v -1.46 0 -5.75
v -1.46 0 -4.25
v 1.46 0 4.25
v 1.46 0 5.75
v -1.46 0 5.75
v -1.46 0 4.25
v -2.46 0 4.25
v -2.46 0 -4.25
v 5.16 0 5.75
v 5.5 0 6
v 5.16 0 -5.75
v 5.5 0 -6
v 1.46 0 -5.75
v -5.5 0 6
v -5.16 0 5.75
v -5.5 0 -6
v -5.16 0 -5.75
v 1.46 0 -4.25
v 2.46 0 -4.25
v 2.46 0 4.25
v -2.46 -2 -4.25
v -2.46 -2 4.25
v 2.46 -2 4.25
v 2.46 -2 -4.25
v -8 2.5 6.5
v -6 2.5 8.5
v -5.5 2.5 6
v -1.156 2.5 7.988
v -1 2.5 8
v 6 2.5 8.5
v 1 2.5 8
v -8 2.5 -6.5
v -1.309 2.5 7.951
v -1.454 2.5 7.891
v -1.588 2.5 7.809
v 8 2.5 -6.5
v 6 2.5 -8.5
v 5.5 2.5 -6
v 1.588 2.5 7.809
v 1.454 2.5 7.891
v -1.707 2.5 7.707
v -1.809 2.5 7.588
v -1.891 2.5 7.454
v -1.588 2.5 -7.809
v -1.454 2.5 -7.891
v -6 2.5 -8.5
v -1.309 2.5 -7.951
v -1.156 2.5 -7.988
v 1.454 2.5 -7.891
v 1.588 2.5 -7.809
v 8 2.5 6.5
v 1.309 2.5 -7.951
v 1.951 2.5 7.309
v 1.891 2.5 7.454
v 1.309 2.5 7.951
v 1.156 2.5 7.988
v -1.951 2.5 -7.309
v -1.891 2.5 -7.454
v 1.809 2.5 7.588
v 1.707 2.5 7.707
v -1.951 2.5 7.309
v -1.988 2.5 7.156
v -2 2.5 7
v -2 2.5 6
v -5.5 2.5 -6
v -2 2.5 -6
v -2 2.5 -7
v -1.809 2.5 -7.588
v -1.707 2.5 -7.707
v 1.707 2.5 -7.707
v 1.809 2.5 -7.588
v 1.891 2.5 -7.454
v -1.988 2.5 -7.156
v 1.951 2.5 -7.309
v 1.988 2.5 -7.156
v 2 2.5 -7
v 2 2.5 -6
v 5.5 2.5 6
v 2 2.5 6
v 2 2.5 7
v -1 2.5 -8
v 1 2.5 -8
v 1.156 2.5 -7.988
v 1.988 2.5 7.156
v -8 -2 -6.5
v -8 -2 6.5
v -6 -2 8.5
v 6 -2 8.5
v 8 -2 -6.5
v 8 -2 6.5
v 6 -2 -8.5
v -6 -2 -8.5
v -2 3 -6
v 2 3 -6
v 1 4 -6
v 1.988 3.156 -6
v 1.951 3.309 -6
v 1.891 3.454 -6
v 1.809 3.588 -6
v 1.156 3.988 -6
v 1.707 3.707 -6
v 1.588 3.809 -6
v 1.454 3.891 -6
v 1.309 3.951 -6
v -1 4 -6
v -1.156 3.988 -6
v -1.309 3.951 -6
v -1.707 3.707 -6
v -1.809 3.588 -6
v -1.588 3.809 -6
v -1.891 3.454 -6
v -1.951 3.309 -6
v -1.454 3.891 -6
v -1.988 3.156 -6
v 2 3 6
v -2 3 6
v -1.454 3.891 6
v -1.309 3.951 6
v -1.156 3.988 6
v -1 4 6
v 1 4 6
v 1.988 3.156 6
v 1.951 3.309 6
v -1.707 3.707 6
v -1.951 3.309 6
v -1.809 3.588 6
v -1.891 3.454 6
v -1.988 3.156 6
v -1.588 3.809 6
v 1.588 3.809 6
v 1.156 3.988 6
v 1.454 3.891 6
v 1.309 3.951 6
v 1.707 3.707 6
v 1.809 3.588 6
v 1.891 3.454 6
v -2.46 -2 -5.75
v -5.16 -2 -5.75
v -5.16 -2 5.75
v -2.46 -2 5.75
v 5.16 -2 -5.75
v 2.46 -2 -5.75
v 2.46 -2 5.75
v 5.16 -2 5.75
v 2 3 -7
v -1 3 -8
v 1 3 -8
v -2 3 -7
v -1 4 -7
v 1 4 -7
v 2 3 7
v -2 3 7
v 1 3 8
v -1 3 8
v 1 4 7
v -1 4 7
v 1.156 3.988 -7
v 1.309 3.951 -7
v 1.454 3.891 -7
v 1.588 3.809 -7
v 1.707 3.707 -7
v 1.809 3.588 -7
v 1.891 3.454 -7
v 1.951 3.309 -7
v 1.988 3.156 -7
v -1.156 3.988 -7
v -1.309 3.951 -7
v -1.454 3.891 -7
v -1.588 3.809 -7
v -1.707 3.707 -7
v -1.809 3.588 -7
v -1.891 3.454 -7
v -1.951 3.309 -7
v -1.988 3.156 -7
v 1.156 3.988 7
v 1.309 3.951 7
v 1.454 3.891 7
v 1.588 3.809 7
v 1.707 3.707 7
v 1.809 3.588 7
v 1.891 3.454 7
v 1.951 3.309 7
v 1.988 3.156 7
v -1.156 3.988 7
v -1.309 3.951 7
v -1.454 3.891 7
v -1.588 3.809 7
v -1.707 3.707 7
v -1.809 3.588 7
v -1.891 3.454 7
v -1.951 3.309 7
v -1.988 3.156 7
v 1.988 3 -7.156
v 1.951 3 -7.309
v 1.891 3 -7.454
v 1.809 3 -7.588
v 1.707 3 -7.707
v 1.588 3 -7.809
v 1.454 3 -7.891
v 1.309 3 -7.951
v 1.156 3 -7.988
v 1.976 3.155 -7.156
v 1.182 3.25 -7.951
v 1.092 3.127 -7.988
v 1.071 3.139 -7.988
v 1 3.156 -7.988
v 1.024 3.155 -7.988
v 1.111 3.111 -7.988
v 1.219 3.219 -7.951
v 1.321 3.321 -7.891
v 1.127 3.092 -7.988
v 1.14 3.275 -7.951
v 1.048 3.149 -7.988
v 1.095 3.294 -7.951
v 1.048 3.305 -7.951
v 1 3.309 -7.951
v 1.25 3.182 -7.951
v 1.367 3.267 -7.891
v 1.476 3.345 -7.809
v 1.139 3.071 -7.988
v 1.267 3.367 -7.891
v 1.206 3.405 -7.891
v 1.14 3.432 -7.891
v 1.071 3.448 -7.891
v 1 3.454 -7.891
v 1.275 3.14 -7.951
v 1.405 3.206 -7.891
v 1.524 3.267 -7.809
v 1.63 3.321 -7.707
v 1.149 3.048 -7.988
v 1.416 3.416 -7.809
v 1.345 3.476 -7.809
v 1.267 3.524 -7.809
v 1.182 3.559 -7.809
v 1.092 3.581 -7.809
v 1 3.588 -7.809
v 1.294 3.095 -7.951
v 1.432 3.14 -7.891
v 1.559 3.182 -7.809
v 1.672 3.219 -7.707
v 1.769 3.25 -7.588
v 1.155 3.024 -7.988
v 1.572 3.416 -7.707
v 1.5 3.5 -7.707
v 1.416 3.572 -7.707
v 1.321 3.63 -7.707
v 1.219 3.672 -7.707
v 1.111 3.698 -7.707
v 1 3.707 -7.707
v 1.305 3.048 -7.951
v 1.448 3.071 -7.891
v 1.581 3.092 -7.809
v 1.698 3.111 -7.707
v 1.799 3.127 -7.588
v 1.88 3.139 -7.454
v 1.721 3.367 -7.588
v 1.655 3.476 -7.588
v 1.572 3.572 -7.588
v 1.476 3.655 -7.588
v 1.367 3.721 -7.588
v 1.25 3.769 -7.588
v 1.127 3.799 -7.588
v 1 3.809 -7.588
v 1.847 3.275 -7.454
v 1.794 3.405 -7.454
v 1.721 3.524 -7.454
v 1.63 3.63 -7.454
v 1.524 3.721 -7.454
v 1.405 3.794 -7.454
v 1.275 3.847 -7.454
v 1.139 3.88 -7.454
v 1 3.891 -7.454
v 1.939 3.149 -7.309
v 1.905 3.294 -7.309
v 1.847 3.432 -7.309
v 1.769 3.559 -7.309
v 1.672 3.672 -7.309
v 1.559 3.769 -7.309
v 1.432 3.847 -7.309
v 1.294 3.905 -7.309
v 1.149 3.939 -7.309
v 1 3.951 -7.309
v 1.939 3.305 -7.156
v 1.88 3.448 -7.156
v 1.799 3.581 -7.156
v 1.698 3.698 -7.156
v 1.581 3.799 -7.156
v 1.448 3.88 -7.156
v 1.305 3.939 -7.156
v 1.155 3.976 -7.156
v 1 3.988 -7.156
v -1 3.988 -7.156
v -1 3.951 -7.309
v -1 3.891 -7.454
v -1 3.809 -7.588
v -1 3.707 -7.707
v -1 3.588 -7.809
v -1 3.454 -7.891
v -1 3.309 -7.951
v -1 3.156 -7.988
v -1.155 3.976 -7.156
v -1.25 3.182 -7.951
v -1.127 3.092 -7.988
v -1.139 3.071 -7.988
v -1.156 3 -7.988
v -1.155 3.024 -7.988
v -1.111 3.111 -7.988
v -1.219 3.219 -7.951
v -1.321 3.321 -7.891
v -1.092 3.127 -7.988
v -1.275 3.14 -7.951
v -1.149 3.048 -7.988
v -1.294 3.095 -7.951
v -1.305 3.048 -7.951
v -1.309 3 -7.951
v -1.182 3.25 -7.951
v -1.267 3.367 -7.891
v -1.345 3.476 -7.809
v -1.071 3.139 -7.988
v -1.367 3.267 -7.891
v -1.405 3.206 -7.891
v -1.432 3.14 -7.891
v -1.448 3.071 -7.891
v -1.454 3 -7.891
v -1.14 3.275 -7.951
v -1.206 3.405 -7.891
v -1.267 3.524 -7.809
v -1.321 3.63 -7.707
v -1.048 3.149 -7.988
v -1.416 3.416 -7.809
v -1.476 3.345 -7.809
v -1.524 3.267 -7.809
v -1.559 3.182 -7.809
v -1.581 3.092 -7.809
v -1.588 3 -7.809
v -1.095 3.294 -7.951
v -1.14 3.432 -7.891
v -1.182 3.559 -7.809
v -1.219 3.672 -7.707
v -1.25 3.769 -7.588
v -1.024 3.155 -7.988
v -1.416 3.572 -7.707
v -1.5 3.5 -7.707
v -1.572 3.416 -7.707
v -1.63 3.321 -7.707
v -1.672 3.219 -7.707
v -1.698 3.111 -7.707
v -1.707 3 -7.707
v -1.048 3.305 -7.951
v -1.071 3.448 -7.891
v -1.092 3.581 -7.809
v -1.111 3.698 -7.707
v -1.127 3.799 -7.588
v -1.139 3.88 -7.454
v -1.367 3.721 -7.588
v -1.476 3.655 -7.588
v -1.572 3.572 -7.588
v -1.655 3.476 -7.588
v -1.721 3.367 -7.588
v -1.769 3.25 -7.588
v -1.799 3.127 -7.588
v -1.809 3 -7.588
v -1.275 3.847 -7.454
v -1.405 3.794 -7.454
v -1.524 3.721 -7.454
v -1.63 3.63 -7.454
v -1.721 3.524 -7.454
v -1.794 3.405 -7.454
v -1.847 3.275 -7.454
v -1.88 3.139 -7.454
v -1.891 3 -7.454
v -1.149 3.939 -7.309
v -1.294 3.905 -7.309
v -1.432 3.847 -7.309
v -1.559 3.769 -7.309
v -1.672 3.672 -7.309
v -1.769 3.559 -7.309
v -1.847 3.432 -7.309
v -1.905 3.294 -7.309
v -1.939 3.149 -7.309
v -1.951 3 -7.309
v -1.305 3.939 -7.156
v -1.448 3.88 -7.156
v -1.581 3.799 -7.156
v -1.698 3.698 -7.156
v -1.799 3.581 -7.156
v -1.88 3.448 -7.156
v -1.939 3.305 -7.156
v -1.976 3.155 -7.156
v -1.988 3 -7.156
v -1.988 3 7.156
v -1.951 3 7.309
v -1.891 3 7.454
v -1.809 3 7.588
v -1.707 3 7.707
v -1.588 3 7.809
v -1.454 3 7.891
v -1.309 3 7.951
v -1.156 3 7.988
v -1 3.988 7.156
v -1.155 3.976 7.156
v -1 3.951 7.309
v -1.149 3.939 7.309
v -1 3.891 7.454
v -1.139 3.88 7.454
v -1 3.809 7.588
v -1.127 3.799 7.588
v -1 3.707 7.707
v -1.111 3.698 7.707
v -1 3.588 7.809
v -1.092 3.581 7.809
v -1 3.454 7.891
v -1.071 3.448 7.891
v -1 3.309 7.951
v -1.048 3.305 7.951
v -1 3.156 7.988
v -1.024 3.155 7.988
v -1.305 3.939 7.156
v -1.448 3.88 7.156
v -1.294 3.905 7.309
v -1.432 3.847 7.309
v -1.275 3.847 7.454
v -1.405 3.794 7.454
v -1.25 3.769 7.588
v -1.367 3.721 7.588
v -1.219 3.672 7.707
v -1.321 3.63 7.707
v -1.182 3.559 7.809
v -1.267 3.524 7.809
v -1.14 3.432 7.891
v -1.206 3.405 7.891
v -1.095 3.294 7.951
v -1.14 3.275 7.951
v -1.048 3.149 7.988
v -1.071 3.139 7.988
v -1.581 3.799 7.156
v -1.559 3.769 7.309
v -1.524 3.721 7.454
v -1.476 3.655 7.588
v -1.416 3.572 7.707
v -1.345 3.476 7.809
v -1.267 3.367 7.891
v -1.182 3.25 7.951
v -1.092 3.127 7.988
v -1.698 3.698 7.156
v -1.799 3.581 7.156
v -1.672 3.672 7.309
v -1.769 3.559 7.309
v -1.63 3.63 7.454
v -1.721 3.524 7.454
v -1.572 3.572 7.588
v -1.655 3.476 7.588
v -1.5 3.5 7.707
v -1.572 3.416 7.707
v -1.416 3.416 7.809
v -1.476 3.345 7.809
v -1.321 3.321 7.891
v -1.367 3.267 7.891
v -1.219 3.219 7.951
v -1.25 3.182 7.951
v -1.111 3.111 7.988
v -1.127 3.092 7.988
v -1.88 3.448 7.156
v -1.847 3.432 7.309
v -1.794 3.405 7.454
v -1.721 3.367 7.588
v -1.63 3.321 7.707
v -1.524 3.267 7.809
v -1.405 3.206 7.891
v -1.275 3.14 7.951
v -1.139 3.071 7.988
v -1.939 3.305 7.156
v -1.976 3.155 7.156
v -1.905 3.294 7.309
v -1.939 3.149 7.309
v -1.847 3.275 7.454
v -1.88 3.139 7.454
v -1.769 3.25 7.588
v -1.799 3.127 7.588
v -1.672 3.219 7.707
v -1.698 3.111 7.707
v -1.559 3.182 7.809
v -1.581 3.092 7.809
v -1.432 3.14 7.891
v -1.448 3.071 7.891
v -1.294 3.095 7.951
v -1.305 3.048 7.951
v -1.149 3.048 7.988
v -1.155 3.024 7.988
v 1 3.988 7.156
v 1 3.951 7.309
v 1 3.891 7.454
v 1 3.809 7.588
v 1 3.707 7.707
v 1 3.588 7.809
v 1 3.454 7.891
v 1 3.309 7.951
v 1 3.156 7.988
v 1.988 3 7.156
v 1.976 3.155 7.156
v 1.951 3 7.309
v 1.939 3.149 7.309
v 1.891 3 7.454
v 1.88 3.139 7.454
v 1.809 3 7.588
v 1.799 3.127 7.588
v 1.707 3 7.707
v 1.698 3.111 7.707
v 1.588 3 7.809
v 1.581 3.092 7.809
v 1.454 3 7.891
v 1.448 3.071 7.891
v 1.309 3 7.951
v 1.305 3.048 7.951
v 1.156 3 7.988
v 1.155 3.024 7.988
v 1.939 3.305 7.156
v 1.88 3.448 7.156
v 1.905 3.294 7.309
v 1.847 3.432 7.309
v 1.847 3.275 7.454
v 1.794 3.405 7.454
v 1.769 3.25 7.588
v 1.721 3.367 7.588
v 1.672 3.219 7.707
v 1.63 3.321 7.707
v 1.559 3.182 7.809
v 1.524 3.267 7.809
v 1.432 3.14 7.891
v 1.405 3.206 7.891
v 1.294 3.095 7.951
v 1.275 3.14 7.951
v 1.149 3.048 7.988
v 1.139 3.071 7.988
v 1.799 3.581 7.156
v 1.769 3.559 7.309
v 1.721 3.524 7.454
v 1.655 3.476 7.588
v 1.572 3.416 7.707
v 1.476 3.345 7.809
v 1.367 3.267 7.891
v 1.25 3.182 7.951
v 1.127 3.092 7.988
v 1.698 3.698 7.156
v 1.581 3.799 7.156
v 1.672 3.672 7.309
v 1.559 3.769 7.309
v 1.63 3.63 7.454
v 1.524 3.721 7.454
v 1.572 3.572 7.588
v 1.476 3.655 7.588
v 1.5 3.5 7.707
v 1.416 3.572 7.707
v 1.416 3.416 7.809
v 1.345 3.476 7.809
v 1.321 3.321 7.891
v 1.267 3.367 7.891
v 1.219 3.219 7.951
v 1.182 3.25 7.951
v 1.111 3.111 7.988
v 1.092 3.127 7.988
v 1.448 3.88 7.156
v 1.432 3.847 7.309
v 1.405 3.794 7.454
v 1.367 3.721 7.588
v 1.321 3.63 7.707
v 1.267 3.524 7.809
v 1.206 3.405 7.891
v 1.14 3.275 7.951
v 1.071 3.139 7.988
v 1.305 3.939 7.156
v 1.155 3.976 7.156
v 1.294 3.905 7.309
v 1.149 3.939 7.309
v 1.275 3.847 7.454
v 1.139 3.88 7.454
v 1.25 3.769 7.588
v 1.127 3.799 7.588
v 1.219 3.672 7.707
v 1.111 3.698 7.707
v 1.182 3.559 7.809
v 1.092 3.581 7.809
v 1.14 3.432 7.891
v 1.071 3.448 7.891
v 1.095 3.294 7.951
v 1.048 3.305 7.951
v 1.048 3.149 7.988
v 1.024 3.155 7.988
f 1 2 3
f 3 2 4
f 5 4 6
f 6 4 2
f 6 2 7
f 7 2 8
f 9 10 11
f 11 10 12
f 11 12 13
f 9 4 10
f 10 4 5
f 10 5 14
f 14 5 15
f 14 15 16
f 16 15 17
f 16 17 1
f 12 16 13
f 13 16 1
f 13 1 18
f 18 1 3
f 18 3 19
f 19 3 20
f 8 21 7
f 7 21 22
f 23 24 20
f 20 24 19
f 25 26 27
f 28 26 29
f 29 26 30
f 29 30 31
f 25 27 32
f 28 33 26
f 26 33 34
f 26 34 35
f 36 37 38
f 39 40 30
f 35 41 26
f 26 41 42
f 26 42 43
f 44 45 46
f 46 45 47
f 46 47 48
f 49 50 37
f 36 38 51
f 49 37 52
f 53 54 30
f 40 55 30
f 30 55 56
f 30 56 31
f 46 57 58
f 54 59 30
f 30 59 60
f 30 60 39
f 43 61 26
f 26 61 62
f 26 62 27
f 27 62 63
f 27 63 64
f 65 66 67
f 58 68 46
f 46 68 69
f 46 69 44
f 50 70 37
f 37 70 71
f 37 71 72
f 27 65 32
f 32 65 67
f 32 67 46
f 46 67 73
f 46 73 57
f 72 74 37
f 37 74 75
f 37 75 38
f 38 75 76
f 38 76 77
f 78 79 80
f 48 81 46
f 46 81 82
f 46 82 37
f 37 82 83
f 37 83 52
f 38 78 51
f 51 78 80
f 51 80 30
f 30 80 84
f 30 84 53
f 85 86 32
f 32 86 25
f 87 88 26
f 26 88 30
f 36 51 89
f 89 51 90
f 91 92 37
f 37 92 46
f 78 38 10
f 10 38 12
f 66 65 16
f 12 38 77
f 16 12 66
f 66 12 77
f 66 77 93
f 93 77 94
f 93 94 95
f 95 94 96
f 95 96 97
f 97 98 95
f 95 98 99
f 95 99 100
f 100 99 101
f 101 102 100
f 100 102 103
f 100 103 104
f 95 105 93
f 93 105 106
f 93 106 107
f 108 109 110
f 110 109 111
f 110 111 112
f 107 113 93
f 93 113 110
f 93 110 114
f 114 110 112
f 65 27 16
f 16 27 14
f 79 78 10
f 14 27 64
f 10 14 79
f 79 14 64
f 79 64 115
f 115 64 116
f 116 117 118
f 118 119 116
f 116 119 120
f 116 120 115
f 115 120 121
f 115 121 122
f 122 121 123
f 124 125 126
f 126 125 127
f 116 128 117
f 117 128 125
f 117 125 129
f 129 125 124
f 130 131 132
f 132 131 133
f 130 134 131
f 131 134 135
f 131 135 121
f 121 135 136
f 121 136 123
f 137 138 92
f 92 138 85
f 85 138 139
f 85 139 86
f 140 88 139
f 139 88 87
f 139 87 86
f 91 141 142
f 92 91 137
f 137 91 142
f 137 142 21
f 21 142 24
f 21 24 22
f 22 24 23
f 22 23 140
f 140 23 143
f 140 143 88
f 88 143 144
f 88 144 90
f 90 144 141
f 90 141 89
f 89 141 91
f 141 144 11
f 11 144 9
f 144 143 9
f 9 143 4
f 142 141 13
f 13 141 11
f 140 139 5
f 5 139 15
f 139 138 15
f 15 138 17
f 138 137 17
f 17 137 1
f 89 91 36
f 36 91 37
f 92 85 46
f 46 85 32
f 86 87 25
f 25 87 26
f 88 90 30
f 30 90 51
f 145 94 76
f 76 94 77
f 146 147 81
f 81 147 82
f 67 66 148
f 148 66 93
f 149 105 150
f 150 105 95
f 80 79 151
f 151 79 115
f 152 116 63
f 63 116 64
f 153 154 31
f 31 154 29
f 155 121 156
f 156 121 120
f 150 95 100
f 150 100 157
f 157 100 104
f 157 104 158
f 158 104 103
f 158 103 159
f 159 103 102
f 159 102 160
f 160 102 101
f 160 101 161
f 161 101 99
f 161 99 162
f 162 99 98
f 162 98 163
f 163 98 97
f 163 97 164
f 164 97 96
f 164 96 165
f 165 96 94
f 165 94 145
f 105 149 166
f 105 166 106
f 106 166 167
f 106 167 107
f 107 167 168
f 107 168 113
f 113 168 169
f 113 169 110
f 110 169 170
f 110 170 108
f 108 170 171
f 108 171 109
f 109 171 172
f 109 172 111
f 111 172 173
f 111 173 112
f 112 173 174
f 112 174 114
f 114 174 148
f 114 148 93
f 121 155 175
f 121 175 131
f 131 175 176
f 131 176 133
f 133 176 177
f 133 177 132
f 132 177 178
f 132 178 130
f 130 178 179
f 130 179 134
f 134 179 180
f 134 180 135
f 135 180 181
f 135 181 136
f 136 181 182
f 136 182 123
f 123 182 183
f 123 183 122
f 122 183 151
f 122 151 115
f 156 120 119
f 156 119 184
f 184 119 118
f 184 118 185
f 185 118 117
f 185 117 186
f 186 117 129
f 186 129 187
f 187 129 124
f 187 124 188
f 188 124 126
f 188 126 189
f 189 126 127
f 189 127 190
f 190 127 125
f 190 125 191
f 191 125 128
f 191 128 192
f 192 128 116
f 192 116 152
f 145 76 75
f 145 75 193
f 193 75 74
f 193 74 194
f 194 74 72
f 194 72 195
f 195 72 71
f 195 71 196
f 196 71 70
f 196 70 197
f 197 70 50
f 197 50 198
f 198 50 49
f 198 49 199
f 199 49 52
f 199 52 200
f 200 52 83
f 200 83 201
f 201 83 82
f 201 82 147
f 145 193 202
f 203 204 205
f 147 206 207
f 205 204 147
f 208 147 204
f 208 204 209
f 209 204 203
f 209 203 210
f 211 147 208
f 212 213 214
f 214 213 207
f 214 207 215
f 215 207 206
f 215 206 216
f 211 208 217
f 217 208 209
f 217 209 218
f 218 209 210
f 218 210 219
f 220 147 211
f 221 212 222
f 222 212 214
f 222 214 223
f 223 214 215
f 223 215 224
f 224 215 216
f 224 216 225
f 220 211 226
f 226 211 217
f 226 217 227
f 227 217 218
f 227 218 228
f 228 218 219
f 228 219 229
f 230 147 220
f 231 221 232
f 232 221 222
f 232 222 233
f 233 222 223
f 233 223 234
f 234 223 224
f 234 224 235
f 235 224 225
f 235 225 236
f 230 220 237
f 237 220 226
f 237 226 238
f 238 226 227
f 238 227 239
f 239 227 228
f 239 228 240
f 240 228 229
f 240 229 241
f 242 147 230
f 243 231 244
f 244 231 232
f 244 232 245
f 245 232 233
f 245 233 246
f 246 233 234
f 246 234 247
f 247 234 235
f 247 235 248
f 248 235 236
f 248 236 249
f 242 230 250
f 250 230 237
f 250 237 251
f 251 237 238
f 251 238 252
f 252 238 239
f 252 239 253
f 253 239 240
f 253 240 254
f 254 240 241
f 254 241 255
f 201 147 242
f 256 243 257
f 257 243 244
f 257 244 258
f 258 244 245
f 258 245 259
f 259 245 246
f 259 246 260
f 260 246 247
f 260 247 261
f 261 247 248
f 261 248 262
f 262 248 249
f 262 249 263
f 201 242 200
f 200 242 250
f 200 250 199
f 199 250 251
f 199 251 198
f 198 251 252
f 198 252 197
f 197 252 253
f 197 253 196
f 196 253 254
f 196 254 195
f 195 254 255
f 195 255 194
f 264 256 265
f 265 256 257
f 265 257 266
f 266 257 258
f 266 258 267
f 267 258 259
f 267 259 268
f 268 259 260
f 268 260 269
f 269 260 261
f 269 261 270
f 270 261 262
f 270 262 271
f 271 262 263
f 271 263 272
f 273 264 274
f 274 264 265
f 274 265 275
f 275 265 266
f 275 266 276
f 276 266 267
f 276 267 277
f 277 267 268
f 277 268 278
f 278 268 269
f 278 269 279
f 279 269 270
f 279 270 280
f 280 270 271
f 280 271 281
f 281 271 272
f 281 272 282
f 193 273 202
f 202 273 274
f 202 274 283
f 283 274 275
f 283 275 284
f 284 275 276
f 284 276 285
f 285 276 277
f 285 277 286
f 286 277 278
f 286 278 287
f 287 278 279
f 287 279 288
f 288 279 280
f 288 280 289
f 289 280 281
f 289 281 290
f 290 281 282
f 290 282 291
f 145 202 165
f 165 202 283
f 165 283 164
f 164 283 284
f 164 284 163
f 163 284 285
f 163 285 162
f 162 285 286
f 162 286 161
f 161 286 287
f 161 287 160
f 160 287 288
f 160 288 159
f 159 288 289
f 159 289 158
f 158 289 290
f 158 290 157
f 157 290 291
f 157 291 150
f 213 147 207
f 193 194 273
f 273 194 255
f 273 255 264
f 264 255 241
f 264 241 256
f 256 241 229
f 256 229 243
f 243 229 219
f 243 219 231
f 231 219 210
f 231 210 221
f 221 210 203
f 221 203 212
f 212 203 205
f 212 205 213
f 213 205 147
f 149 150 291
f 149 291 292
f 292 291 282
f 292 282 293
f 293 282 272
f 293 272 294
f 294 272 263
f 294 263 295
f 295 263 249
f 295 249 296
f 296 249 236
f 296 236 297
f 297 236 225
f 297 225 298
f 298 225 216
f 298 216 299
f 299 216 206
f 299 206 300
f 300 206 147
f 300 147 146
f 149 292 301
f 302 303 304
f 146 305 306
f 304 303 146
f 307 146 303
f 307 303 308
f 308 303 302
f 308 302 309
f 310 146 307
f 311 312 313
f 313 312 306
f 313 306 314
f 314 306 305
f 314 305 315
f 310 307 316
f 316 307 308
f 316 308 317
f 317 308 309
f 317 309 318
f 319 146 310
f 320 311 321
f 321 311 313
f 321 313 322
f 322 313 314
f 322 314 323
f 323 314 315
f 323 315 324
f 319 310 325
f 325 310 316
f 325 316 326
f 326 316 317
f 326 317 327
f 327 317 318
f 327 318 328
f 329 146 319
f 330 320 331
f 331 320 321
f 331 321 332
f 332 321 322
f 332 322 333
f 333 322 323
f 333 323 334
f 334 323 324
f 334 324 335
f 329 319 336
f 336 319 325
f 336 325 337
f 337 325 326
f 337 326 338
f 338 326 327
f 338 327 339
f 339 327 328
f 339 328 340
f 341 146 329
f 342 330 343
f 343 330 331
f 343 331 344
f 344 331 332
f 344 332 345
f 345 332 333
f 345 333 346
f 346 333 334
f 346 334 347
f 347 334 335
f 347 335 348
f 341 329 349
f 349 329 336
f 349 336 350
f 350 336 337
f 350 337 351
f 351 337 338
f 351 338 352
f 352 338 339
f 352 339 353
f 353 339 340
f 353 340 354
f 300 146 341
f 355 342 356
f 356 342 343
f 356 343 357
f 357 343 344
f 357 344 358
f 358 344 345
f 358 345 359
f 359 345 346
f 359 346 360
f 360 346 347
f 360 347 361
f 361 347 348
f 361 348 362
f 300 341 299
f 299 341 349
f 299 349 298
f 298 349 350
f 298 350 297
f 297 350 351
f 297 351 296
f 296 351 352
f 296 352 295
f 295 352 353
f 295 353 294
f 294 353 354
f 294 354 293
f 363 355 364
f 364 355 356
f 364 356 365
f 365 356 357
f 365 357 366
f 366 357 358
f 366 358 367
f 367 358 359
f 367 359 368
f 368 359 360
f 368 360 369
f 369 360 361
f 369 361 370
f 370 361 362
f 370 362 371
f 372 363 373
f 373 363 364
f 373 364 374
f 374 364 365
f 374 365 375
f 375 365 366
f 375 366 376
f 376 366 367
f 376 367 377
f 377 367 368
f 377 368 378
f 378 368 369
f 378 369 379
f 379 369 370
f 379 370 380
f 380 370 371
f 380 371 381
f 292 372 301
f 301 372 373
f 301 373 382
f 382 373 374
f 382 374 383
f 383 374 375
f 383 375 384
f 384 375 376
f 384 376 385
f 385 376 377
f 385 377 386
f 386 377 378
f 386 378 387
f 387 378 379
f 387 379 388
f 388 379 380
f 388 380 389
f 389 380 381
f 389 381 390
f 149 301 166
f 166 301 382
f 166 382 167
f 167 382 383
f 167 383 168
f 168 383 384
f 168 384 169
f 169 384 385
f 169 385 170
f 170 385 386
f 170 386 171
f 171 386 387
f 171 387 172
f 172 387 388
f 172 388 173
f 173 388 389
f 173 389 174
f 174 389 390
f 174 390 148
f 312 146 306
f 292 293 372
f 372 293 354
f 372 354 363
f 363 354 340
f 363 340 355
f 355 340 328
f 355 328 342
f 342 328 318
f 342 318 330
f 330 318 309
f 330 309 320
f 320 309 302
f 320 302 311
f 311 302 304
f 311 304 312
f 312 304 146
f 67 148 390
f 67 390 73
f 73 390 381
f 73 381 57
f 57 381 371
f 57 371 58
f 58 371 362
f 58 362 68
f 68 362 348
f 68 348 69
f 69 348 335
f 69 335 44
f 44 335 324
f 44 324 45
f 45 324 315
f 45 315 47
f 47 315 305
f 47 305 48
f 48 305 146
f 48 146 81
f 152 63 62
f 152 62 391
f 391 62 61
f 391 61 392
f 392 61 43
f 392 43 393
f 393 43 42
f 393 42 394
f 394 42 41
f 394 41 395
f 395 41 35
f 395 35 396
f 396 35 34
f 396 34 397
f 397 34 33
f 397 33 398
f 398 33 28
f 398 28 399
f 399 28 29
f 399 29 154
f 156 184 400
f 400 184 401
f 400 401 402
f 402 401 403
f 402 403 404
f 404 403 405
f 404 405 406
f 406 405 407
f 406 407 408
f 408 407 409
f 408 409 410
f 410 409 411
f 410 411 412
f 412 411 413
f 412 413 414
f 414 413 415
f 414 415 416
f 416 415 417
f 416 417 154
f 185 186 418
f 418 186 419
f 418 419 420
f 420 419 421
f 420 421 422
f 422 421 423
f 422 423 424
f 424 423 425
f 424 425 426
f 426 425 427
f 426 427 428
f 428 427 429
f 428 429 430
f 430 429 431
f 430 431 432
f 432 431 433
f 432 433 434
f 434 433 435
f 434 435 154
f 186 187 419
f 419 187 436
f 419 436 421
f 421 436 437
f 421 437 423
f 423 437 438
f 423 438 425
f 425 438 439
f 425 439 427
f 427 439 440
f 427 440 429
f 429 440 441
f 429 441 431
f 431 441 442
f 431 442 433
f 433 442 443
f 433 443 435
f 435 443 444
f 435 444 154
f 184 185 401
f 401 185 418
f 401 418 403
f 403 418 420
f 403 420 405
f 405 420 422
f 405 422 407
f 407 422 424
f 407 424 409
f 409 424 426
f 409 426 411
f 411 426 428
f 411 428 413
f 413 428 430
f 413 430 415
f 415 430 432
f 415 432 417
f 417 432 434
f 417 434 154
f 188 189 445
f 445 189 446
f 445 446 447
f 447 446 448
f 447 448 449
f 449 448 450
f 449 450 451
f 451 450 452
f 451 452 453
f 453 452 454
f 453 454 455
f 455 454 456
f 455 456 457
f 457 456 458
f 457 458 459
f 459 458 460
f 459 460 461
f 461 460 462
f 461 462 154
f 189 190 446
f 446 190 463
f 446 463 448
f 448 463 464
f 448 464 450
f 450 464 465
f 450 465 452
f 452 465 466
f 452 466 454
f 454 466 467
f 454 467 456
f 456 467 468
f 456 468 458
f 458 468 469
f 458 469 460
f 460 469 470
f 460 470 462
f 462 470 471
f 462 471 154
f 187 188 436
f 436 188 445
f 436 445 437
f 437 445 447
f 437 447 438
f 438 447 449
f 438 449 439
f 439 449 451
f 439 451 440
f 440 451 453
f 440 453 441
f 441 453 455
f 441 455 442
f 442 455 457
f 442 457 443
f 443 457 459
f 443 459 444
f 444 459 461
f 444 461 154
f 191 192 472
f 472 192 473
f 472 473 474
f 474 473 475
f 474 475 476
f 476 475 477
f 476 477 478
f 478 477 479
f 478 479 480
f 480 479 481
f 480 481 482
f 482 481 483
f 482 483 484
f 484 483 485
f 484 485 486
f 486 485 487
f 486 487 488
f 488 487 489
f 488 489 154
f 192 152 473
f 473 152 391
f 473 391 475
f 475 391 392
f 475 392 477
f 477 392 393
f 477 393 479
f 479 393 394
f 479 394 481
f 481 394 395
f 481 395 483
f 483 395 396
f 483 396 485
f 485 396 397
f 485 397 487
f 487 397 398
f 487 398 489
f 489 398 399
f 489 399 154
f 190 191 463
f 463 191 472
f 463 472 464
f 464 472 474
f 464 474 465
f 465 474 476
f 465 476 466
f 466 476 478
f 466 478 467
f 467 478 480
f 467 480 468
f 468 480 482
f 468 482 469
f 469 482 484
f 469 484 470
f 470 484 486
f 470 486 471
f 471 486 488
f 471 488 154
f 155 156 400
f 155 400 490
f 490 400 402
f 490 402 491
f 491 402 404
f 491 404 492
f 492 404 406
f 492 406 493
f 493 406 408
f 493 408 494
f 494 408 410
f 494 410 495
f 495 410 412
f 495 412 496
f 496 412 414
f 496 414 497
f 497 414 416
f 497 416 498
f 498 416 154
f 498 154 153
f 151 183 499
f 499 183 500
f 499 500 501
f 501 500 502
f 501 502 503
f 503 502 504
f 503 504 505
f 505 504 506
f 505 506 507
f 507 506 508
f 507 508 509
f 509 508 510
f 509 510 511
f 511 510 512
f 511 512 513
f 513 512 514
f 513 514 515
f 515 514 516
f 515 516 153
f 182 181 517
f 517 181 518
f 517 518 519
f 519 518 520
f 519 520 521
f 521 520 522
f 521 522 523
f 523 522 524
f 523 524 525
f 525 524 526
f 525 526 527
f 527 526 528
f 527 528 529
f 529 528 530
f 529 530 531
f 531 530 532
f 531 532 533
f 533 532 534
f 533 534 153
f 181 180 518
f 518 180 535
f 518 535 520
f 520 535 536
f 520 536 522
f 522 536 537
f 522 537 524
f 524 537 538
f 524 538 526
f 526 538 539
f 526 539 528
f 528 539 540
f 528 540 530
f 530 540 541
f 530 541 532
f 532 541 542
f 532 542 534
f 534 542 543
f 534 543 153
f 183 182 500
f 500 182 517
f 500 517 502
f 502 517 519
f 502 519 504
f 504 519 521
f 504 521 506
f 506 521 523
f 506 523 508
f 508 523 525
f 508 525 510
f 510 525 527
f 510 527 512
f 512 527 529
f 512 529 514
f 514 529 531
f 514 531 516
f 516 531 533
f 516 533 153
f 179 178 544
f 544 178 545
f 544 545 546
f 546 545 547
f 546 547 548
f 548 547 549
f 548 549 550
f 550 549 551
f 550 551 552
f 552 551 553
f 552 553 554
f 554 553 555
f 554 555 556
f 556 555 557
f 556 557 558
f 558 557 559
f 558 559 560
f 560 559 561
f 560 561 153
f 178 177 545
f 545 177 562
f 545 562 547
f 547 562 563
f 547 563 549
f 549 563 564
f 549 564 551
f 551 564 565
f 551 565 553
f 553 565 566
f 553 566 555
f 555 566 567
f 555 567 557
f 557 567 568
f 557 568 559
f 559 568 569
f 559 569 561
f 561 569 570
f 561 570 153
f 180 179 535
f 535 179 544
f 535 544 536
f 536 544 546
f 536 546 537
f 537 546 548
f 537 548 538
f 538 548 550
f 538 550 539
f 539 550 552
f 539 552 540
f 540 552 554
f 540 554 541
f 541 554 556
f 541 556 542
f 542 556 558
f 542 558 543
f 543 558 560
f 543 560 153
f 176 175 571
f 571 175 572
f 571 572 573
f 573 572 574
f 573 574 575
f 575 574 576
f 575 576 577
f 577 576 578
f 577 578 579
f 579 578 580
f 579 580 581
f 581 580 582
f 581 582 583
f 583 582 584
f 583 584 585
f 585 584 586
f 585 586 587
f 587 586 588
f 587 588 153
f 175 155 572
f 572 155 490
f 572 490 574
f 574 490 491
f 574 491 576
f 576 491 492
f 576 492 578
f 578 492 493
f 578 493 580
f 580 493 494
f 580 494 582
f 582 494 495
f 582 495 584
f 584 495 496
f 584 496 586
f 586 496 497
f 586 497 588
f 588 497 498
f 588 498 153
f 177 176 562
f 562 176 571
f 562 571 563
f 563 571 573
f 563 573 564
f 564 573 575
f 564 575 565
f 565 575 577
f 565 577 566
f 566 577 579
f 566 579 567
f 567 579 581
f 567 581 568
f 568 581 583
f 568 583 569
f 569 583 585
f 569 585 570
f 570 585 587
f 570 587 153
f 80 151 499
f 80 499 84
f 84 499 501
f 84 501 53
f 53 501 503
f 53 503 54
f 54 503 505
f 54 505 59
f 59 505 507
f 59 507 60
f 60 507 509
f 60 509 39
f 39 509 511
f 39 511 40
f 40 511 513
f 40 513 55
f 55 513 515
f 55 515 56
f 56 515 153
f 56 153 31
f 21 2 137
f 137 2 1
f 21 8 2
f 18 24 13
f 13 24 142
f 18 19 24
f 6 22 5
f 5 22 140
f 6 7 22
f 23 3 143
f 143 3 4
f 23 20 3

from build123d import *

# Parameters (mm, degrees)
SKETCH1_W           = 16
SKETCH1_H           = 17
SKETCH1_W_2         = 11
SKETCH1_H_2         = 12
BOSS_EXTRUDE1_DEPTH = 2.5
SKETCH2_W           = 16
SKETCH2_H           = 17
BOSS_EXTRUDE2_DEPTH = 2
SKETCH4_W           = 2.7
SKETCH4_H           = 11.5
CUT_EXTRUDE1_DEPTH  = 12.937336386
CHAMFER1_SIZE       = 2
SKETCH5_W           = 4
SKETCH5_H           = 2
BOSS_EXTRUDE3_DEPTH = 1.5
FILLET1_R           = 1
FILLET2_R           = 1
CUT_EXTRUDE2_DEPTH  = 1.5
CUT_EXTRUDE3_DEPTH  = 1.5


with BuildPart() as part:
    # Sketch1 → Boss-Extrude1 (new body)
    with BuildSketch(Plane(origin=(0, 0, 0), x_dir=(1, 0, 0), z_dir=(0, 1, 0))):
        Rectangle(SKETCH1_W, SKETCH1_H)
        Rectangle(SKETCH1_W_2, SKETCH1_H_2, mode=Mode.SUBTRACT)
    extrude(amount=BOSS_EXTRUDE1_DEPTH)

    # Sketch2 → Boss-Extrude2 (add)
    with BuildSketch(Plane.XZ):
        Rectangle(SKETCH2_W, SKETCH2_H)
    extrude(amount=BOSS_EXTRUDE2_DEPTH)

    # Sketch4 → Cut-Extrude1 (cut, through all)
    with BuildSketch(Plane(origin=(0, 0, 0), x_dir=(1, 0, 0), z_dir=(0, 1, 0))):
        with Locations((-3.81, 0)):
            Rectangle(SKETCH4_W, SKETCH4_H)
        with Locations((3.81, 0)):
            Rectangle(SKETCH4_W, SKETCH4_H)
    extrude(amount=-CUT_EXTRUDE1_DEPTH, mode=Mode.SUBTRACT)

    # Chamfer1
    chamfer1_edges = [part.edges().sort_by_distance(p)[0] for p in [
        (-8, 0.25, -8.5),
        (8, 0.25, -8.5),
        (8, 0.25, 8.5),
        (-8, 0.25, 8.5),
    ]]
    chamfer(chamfer1_edges, length=CHAMFER1_SIZE)

    # Sketch5 → Boss-Extrude3 (add)
    with BuildSketch(Plane(origin=(0, 2.5, 0), x_dir=(1, 0, 0), z_dir=(0, 1, 0))):
        with Locations((0, 7)):
            Rectangle(SKETCH5_W, SKETCH5_H)
        with Locations((0, -7)):
            Rectangle(SKETCH5_W, SKETCH5_H)
    extrude(amount=BOSS_EXTRUDE3_DEPTH)

    # Fillet1
    fillet1_edges = [part.edges().sort_by_distance(p)[0] for p in [
        (2, 4, -7),
        (-2, 4, -7),
        (2, 4, 7),
        (-2, 4, 7),
    ]]
    fillet(fillet1_edges, radius=FILLET1_R)

    # Fillet2
    fillet2_edges = [part.edges().sort_by_distance(p)[0] for p in [
        (2, 2.75, -8),
        (0, 4, -8),
        (-2, 2.75, -8),
        (-1.707106781, 3.707106781, -8),
        (1.707106781, 3.707106781, -8),
        (2, 2.75, 8),
        (0, 4, 8),
        (-2, 2.75, 8),
        (-1.707106781, 3.707106781, 8),
        (1.707106781, 3.707106781, 8),
    ]]
    fillet(fillet2_edges, radius=FILLET2_R)

    # Sketch6 → Cut-Extrude2 (cut)
    with BuildSketch(Plane.XY.offset(-5.75)):
        Polygon((-2.46, -2), (-2.46, 0), (-1.46, 0), align=None)
        Polygon((2.46, -2), (2.46, 0), (1.46, 0), align=None)
    extrude(amount=CUT_EXTRUDE2_DEPTH, mode=Mode.SUBTRACT)

    # Sketch8 → Cut-Extrude3 (cut)
    with BuildSketch(Plane(origin=(0, 0, 5.75), x_dir=(-1, 0, 0), z_dir=(0, 0, -1))):
        Polygon((-2.46, 0), (-2.46, -2), (-1.46, 0), align=None)
        Polygon((2.46, -2), (2.46, 0), (1.46, 0), align=None)
    extrude(amount=CUT_EXTRUDE3_DEPTH, mode=Mode.SUBTRACT)


solid = part.part
